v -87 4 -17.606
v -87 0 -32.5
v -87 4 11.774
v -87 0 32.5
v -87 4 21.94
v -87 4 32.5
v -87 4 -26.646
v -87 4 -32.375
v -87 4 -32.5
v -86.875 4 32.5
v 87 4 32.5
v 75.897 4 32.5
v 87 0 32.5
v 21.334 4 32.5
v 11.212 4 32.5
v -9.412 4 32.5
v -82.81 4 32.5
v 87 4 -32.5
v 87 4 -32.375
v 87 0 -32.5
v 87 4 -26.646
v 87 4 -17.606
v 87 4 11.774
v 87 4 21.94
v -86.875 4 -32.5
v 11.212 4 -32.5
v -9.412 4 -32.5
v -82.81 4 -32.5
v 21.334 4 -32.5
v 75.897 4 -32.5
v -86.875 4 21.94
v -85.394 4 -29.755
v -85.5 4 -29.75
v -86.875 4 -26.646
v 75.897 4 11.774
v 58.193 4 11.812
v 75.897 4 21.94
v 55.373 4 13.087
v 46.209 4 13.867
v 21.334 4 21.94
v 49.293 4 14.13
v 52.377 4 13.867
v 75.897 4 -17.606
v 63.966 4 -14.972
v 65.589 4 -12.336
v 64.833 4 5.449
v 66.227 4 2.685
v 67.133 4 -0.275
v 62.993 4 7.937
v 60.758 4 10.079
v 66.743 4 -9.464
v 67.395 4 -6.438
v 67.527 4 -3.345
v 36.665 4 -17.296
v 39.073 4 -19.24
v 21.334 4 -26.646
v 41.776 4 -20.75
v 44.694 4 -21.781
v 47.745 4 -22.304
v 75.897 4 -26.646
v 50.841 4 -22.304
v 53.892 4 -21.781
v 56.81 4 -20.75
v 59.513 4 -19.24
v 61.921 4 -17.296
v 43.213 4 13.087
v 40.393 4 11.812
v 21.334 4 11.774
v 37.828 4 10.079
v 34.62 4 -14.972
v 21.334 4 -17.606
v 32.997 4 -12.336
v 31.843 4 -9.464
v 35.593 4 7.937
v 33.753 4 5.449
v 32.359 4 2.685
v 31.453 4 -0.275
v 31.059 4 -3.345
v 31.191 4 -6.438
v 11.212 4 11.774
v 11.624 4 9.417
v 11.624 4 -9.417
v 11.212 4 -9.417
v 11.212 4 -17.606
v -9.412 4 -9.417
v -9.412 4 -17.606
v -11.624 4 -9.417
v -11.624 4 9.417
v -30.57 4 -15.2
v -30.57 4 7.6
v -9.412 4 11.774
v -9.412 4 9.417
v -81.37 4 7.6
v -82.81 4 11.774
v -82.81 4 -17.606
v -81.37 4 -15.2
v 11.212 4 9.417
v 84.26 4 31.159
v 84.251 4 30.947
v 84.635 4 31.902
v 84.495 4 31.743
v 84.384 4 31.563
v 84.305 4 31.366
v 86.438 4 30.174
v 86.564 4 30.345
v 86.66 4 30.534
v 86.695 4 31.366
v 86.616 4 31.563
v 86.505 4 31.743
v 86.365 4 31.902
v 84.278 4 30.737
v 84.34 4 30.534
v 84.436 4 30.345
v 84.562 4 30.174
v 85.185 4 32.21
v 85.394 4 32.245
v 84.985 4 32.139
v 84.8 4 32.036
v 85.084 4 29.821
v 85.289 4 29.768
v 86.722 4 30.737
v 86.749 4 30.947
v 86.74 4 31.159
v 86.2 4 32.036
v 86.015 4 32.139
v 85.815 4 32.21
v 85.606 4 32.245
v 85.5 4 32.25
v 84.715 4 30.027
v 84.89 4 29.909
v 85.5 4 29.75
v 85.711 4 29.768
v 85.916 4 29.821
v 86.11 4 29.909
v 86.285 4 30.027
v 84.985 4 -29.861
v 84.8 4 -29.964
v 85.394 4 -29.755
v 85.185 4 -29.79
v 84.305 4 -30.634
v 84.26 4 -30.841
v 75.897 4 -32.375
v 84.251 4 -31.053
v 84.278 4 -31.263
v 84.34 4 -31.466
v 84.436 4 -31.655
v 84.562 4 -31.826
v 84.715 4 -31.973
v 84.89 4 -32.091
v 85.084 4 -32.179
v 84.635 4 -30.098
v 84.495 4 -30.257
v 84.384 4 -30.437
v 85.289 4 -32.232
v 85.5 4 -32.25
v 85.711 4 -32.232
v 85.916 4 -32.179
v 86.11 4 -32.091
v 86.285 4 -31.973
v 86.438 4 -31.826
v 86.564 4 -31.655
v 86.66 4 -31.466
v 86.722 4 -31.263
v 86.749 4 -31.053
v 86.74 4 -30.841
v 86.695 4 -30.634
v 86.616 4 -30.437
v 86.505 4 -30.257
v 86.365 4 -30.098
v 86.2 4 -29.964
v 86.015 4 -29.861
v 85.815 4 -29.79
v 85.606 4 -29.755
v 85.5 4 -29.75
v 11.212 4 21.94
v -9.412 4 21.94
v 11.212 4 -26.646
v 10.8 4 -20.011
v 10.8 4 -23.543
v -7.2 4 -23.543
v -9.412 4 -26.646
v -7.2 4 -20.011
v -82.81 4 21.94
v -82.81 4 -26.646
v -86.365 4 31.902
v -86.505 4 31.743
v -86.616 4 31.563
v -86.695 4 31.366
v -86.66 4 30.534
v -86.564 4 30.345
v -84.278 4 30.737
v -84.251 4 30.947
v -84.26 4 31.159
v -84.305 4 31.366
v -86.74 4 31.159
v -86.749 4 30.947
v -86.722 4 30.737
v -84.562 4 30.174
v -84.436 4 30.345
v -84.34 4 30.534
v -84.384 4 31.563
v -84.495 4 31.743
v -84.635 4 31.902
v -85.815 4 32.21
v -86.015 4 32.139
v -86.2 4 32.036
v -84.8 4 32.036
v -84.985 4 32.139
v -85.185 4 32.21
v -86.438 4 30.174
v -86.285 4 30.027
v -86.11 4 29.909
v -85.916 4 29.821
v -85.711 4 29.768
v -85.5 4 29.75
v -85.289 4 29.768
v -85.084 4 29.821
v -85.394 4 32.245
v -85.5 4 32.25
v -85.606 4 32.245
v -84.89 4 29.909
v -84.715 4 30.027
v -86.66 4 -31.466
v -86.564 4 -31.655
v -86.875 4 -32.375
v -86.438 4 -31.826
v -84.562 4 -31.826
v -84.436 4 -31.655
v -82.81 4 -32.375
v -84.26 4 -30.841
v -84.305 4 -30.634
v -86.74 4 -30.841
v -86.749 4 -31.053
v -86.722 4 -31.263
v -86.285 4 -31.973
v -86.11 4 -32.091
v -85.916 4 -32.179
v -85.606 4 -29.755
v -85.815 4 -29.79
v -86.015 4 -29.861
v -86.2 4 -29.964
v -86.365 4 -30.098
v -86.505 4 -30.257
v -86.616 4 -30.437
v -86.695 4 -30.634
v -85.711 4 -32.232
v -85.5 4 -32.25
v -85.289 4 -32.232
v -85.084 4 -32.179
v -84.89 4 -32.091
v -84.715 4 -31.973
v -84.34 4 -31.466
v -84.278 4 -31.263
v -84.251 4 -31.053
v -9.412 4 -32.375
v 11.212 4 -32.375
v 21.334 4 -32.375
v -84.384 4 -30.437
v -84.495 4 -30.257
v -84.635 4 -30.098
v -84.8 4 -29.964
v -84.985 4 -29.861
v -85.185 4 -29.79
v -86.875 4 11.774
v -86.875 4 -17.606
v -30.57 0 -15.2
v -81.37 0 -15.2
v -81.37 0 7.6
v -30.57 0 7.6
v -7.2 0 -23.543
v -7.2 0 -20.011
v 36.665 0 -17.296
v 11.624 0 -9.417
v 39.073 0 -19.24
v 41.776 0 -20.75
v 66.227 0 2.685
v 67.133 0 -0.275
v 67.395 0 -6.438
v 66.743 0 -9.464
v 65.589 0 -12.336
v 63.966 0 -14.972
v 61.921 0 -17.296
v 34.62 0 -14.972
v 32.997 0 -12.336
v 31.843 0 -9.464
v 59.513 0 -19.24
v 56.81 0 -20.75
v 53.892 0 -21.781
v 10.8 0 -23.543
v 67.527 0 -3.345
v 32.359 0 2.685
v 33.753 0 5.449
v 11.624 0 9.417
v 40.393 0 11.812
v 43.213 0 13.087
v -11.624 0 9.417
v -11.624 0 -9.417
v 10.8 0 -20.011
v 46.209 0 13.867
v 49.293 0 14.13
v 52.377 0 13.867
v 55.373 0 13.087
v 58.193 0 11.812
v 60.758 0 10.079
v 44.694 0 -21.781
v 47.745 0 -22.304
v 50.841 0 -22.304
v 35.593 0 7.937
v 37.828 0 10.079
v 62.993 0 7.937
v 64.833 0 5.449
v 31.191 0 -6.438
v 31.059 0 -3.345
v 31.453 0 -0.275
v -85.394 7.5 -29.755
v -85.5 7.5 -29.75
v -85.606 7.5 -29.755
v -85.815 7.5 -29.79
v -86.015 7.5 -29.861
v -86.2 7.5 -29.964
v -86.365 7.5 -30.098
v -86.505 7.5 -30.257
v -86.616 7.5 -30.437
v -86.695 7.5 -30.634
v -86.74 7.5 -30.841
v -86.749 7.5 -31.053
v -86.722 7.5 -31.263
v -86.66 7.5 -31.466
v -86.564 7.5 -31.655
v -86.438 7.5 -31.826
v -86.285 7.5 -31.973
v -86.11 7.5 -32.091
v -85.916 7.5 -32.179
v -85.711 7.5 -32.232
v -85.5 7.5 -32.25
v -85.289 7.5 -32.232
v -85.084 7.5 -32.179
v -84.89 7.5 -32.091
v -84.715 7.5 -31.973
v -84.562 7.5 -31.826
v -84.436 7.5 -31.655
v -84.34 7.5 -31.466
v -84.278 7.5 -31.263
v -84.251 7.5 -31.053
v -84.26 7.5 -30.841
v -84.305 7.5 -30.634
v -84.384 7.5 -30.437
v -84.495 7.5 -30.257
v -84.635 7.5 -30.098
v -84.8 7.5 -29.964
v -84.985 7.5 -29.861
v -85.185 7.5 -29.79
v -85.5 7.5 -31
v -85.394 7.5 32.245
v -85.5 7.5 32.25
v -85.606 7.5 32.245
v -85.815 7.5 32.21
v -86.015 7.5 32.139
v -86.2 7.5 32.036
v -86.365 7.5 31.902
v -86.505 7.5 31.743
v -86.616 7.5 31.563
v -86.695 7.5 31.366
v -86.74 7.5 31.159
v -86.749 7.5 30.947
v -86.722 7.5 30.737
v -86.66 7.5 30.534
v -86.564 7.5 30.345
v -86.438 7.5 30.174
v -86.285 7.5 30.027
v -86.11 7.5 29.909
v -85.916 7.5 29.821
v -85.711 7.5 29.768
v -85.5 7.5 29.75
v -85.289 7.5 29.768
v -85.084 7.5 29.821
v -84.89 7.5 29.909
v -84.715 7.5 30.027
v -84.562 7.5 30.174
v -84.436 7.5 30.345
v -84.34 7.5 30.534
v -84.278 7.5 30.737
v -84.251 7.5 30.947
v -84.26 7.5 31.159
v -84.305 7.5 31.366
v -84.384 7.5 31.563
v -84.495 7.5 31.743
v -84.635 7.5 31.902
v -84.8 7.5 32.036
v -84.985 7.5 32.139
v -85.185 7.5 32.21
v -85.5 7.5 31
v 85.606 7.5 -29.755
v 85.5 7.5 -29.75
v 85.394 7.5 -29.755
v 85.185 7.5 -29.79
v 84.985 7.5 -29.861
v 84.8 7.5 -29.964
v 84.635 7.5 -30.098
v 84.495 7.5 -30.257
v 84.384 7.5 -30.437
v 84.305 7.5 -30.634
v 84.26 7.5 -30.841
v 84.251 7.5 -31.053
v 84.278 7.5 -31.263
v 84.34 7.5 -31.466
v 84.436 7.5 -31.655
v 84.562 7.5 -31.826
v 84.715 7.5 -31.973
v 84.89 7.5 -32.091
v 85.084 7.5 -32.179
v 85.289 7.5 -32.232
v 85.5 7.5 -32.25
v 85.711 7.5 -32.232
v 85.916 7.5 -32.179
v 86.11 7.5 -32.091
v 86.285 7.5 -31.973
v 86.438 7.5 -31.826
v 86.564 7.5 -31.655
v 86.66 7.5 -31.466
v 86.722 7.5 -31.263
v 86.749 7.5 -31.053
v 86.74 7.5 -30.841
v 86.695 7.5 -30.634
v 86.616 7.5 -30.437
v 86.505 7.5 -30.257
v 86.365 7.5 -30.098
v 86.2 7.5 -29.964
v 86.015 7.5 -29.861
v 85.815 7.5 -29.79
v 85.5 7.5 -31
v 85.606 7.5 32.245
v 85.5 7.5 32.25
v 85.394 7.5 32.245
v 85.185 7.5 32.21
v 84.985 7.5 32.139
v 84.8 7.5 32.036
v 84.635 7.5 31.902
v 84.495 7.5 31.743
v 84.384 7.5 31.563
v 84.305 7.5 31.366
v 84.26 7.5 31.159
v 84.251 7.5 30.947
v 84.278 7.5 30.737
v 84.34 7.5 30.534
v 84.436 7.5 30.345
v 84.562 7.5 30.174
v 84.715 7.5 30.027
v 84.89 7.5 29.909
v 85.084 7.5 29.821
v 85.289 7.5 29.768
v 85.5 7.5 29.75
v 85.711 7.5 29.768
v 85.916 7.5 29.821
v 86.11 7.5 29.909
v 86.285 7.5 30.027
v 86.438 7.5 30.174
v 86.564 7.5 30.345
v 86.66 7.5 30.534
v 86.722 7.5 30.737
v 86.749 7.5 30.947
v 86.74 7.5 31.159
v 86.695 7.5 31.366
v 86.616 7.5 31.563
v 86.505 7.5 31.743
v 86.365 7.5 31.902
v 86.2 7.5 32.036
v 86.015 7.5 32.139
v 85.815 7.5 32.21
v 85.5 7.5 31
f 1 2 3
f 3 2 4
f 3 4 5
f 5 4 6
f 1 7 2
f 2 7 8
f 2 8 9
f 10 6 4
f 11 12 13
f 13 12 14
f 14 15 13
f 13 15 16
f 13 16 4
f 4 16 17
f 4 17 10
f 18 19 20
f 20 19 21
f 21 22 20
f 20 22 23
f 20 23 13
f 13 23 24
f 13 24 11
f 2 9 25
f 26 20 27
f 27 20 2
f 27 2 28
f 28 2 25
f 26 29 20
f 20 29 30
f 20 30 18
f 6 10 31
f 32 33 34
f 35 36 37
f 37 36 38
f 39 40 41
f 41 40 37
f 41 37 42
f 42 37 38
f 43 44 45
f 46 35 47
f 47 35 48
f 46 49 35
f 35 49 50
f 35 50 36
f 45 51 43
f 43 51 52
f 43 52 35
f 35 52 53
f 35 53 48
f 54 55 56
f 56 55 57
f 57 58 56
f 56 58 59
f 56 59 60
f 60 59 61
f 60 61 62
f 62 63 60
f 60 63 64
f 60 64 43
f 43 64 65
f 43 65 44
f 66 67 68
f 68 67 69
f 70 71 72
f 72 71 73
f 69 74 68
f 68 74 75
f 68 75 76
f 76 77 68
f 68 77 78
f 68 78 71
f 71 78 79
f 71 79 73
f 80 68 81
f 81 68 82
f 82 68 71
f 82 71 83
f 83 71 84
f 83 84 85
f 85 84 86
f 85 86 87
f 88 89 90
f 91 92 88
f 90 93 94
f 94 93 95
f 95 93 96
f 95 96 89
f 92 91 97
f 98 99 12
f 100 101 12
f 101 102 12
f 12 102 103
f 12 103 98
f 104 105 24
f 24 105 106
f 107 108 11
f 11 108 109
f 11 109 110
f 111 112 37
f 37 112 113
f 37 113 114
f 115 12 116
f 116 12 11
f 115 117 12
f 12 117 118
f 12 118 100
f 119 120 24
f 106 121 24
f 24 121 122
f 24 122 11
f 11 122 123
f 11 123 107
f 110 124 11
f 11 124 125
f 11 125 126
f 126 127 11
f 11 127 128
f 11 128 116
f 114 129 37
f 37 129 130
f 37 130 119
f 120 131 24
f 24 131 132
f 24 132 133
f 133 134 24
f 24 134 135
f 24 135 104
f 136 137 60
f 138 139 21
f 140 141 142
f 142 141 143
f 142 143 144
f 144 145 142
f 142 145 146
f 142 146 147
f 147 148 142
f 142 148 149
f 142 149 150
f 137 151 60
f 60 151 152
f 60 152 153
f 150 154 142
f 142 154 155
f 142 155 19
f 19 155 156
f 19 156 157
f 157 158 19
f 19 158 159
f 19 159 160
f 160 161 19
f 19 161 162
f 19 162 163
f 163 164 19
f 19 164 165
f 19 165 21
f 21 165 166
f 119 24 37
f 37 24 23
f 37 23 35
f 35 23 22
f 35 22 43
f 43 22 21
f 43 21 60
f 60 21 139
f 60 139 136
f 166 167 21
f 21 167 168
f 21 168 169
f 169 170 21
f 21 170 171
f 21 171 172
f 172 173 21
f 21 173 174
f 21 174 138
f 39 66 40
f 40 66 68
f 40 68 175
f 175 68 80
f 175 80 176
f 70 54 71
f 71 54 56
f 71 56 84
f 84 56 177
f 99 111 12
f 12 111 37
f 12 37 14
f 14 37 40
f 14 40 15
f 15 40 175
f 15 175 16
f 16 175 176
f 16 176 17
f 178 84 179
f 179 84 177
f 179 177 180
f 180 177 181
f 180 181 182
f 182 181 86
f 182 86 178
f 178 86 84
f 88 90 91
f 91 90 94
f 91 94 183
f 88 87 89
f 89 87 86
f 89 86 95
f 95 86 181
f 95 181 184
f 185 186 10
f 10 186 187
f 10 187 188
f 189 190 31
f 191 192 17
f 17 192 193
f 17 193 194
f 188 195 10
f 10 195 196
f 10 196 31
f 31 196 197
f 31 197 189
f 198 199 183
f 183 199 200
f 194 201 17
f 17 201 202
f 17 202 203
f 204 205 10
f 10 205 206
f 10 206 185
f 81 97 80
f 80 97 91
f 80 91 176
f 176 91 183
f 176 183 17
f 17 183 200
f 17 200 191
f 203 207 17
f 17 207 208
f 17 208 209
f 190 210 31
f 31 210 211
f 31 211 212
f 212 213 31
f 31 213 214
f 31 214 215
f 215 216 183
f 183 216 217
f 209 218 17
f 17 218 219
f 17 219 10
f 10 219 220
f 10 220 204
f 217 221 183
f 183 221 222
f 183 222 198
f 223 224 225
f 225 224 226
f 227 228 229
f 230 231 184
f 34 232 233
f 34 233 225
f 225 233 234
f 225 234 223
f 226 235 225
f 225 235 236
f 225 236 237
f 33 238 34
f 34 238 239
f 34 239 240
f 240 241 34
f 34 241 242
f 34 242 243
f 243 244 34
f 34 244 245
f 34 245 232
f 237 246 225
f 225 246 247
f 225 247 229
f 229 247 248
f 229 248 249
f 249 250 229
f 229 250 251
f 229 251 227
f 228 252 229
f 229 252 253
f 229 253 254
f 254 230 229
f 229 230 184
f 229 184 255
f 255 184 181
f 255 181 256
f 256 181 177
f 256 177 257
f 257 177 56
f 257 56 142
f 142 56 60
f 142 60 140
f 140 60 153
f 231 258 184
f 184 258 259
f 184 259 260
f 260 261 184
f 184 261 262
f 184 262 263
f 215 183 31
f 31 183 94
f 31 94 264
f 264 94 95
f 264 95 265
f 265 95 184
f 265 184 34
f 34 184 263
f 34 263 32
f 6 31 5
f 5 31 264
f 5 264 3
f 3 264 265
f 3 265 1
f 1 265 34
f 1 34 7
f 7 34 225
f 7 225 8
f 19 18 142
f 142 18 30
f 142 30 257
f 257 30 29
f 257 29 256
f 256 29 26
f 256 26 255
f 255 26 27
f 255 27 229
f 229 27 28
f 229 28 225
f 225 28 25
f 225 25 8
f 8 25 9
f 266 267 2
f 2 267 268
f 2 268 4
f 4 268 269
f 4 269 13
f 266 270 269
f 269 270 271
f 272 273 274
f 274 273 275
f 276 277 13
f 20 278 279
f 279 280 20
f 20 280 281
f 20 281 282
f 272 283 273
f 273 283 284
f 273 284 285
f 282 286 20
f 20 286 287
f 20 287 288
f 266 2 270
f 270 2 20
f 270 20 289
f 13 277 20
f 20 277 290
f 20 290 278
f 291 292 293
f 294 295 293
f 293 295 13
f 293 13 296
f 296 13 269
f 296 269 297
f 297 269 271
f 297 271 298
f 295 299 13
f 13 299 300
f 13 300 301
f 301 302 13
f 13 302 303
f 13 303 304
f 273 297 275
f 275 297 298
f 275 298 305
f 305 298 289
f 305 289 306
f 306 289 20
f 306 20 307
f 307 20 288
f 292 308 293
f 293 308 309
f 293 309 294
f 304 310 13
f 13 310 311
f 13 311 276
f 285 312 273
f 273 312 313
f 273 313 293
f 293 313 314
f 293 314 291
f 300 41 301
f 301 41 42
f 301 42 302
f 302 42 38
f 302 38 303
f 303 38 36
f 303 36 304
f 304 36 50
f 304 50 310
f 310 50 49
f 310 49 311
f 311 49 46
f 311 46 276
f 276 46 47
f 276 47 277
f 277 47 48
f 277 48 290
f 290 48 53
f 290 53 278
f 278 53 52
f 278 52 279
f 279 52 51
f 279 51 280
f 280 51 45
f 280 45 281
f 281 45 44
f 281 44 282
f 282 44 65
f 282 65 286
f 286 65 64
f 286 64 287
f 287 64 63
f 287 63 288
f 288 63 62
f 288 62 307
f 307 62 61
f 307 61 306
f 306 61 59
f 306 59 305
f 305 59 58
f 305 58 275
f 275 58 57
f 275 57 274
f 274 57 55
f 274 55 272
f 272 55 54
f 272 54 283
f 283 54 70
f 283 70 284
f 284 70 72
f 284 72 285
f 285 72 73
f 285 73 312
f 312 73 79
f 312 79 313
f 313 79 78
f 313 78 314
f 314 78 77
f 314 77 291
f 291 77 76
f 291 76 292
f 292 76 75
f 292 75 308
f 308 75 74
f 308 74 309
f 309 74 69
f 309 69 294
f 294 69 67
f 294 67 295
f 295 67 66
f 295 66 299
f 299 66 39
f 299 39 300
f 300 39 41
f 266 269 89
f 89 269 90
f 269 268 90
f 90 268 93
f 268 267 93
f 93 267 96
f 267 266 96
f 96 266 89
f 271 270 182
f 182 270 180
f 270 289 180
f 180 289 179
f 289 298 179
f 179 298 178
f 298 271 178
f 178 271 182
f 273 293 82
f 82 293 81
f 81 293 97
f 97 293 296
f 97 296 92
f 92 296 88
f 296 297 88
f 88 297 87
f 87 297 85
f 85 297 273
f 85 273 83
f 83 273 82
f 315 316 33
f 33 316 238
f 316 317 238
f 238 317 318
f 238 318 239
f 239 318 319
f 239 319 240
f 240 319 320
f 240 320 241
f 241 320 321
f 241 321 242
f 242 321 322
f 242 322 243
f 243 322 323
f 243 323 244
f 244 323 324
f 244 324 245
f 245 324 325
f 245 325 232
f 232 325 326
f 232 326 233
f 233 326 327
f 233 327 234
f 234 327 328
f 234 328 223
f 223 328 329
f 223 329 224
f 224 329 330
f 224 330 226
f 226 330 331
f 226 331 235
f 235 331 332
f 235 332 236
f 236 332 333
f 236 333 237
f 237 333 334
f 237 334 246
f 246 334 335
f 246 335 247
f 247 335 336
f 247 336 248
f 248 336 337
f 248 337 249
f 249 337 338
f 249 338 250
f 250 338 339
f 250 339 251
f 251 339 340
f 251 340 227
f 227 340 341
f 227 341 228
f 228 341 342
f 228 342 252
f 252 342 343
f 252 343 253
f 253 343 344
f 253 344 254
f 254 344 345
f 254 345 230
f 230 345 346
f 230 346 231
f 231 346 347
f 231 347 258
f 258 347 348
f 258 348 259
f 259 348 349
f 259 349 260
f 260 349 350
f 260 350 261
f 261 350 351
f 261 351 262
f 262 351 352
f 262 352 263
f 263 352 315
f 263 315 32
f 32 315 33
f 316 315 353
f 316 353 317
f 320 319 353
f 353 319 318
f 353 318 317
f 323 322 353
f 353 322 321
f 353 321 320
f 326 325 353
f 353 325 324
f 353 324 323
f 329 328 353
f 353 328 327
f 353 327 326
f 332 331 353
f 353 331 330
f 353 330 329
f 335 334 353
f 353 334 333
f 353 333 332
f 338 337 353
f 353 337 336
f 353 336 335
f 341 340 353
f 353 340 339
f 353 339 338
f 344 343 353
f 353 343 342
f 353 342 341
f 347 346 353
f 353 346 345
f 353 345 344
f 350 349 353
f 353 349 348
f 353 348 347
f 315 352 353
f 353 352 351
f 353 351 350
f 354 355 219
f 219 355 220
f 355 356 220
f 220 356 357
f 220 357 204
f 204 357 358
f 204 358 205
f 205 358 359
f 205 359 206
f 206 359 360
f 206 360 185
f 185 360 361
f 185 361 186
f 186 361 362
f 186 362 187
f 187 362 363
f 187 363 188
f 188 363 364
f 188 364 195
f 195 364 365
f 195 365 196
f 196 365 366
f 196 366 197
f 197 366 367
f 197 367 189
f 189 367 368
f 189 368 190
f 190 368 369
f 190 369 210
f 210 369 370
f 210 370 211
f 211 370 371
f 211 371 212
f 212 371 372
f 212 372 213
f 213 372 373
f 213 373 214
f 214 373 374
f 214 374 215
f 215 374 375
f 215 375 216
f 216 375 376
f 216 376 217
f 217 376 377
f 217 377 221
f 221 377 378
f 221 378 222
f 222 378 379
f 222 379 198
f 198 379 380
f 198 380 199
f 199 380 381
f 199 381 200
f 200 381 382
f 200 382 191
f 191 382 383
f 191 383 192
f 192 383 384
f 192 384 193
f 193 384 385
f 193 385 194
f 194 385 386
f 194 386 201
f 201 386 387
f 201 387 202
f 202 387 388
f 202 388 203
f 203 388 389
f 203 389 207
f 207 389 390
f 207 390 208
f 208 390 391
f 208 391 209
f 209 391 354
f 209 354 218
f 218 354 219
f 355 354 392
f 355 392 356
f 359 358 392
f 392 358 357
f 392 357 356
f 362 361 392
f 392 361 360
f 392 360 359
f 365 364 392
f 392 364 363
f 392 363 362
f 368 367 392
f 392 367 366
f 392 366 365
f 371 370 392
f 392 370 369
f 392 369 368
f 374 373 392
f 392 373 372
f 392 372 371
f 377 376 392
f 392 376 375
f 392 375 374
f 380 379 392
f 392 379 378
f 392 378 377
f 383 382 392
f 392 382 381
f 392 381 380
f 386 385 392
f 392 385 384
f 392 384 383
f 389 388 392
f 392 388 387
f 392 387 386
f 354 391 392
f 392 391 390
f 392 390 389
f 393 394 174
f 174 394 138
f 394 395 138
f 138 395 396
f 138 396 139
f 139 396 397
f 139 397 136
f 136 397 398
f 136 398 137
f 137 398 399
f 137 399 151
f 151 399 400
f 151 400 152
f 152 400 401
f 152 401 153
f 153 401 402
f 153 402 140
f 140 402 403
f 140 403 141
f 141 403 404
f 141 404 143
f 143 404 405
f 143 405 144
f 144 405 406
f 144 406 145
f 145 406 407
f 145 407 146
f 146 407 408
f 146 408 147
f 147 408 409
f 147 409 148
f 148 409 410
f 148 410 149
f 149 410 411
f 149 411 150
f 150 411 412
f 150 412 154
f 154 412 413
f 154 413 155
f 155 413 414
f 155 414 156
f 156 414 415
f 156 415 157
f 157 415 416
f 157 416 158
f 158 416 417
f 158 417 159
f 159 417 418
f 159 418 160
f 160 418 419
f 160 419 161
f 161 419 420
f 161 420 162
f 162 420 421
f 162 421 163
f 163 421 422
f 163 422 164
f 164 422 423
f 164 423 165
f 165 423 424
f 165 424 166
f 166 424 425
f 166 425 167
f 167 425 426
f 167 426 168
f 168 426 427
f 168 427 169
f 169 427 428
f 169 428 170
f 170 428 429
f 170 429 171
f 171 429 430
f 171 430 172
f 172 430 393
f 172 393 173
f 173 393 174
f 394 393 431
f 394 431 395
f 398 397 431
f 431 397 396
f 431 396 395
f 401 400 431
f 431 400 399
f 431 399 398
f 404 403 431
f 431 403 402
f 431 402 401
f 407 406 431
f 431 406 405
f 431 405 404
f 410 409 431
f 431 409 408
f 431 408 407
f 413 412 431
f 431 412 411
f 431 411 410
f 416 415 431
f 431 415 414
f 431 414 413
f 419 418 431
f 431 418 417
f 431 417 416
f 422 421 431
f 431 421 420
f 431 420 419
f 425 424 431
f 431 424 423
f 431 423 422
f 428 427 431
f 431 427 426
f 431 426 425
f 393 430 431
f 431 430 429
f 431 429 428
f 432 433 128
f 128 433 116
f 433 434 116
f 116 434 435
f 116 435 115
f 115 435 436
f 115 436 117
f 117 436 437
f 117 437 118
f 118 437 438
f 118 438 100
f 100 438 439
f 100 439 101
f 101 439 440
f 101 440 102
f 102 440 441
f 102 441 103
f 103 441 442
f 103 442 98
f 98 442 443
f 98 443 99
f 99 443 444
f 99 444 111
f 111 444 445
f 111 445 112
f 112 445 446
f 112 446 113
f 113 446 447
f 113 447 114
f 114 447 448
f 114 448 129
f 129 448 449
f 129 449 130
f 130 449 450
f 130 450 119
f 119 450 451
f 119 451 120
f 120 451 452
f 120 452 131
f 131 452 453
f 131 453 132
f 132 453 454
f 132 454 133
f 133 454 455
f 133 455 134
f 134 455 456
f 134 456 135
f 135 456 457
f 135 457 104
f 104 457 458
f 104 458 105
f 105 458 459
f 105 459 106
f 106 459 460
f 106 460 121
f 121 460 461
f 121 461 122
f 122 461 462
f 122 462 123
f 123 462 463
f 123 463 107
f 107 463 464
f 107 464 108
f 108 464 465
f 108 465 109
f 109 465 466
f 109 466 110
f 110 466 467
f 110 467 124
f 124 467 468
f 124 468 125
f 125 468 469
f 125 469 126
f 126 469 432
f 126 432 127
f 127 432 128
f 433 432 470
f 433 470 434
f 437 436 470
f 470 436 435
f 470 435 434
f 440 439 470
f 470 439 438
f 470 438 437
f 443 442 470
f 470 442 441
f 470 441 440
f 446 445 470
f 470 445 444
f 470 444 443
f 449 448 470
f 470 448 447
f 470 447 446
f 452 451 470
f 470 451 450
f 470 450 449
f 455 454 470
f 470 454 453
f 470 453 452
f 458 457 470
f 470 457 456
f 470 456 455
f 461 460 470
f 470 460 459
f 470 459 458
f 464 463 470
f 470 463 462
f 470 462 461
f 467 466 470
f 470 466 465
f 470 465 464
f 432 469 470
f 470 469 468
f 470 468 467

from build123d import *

# Parameters (mm, degrees)
SKETCH1_W           = 174
SKETCH1_H           = 65
BOSS_EXTRUDE1_DEPTH = 4
SKETCH2_R           = 18.25
CUT_EXTRUDE1_DEPTH  = 4
SKETCH4_W           = 50.8
SKETCH4_H           = 22.8
CUT_EXTRUDE2_DEPTH  = 4
SKETCH5_W           = 18
SKETCH5_H           = 3.531440261
CUT_EXTRUDE3_DEPTH  = 4
SKETCH9_W           = 23.248648384
SKETCH9_H           = 18.834348058
CUT_EXTRUDE4_DEPTH  = 4
SKETCH10_R          = 1.25
BOSS_EXTRUDE2_DEPTH = 3.5
SKETCH12_R          = 1.25
BOSS_EXTRUDE3_DEPTH = 3.5


with BuildPart() as part:
    # Sketch1 → Boss-Extrude1 (new body)
    with BuildSketch(Plane(origin=(0, 0, 0), x_dir=(1, 0, 0), z_dir=(0, 1, 0))):
        Rectangle(SKETCH1_W, SKETCH1_H)
    extrude(amount=BOSS_EXTRUDE1_DEPTH)

    # Sketch2 → Cut-Extrude1 (cut)
    with BuildSketch(Plane(origin=(0, 4, 0), x_dir=(1, 0, 0), z_dir=(0, 1, 0))):
        with Locations((49.293020306, 4.120013638)):
            Circle(SKETCH2_R)
    extrude(amount=-CUT_EXTRUDE1_DEPTH, mode=Mode.SUBTRACT)

    # Sketch4 → Cut-Extrude2 (cut)
    with BuildSketch(Plane(origin=(0, 4, 0), x_dir=(1, 0, 0), z_dir=(0, 1, 0))):
        with Locations((-55.970269341, 3.8)):
            Rectangle(SKETCH4_W, SKETCH4_H)
    extrude(amount=-CUT_EXTRUDE2_DEPTH, mode=Mode.SUBTRACT)

    # Sketch5 → Cut-Extrude3 (cut)
    with BuildSketch(Plane(origin=(0, 4, 0), x_dir=(1, 0, 0), z_dir=(0, 1, 0))):
        with Locations((1.8, 21.777214942)):
            Rectangle(SKETCH5_W, SKETCH5_H)
    extrude(amount=-CUT_EXTRUDE3_DEPTH, mode=Mode.SUBTRACT)

    # Sketch9 → Cut-Extrude4 (cut)
    with BuildSketch(Plane(origin=(0, 4, 0), x_dir=(1, 0, 0), z_dir=(0, 1, 0))):
        Rectangle(SKETCH9_W, SKETCH9_H)
    extrude(amount=-CUT_EXTRUDE4_DEPTH, mode=Mode.SUBTRACT)

    # Sketch10 → Boss-Extrude2 (add)
    with BuildSketch(Plane(origin=(0, 4, 0), x_dir=(1, 0, 0), z_dir=(0, 1, 0))):
        with Locations((-85.5, 31)):
            Circle(SKETCH10_R)
        with Locations((-85.5, -31)):
            Circle(SKETCH10_R)
    extrude(amount=BOSS_EXTRUDE2_DEPTH)

    # Sketch12 → Boss-Extrude3 (add)
    with BuildSketch(Plane(origin=(0, 4, 0), x_dir=(1, 0, 0), z_dir=(0, 1, 0))):
        with Locations((85.5, 31)):
            Circle(SKETCH12_R)
        with Locations((85.5, -31)):
            Circle(SKETCH12_R)
    extrude(amount=BOSS_EXTRUDE3_DEPTH)


solid = part.part
